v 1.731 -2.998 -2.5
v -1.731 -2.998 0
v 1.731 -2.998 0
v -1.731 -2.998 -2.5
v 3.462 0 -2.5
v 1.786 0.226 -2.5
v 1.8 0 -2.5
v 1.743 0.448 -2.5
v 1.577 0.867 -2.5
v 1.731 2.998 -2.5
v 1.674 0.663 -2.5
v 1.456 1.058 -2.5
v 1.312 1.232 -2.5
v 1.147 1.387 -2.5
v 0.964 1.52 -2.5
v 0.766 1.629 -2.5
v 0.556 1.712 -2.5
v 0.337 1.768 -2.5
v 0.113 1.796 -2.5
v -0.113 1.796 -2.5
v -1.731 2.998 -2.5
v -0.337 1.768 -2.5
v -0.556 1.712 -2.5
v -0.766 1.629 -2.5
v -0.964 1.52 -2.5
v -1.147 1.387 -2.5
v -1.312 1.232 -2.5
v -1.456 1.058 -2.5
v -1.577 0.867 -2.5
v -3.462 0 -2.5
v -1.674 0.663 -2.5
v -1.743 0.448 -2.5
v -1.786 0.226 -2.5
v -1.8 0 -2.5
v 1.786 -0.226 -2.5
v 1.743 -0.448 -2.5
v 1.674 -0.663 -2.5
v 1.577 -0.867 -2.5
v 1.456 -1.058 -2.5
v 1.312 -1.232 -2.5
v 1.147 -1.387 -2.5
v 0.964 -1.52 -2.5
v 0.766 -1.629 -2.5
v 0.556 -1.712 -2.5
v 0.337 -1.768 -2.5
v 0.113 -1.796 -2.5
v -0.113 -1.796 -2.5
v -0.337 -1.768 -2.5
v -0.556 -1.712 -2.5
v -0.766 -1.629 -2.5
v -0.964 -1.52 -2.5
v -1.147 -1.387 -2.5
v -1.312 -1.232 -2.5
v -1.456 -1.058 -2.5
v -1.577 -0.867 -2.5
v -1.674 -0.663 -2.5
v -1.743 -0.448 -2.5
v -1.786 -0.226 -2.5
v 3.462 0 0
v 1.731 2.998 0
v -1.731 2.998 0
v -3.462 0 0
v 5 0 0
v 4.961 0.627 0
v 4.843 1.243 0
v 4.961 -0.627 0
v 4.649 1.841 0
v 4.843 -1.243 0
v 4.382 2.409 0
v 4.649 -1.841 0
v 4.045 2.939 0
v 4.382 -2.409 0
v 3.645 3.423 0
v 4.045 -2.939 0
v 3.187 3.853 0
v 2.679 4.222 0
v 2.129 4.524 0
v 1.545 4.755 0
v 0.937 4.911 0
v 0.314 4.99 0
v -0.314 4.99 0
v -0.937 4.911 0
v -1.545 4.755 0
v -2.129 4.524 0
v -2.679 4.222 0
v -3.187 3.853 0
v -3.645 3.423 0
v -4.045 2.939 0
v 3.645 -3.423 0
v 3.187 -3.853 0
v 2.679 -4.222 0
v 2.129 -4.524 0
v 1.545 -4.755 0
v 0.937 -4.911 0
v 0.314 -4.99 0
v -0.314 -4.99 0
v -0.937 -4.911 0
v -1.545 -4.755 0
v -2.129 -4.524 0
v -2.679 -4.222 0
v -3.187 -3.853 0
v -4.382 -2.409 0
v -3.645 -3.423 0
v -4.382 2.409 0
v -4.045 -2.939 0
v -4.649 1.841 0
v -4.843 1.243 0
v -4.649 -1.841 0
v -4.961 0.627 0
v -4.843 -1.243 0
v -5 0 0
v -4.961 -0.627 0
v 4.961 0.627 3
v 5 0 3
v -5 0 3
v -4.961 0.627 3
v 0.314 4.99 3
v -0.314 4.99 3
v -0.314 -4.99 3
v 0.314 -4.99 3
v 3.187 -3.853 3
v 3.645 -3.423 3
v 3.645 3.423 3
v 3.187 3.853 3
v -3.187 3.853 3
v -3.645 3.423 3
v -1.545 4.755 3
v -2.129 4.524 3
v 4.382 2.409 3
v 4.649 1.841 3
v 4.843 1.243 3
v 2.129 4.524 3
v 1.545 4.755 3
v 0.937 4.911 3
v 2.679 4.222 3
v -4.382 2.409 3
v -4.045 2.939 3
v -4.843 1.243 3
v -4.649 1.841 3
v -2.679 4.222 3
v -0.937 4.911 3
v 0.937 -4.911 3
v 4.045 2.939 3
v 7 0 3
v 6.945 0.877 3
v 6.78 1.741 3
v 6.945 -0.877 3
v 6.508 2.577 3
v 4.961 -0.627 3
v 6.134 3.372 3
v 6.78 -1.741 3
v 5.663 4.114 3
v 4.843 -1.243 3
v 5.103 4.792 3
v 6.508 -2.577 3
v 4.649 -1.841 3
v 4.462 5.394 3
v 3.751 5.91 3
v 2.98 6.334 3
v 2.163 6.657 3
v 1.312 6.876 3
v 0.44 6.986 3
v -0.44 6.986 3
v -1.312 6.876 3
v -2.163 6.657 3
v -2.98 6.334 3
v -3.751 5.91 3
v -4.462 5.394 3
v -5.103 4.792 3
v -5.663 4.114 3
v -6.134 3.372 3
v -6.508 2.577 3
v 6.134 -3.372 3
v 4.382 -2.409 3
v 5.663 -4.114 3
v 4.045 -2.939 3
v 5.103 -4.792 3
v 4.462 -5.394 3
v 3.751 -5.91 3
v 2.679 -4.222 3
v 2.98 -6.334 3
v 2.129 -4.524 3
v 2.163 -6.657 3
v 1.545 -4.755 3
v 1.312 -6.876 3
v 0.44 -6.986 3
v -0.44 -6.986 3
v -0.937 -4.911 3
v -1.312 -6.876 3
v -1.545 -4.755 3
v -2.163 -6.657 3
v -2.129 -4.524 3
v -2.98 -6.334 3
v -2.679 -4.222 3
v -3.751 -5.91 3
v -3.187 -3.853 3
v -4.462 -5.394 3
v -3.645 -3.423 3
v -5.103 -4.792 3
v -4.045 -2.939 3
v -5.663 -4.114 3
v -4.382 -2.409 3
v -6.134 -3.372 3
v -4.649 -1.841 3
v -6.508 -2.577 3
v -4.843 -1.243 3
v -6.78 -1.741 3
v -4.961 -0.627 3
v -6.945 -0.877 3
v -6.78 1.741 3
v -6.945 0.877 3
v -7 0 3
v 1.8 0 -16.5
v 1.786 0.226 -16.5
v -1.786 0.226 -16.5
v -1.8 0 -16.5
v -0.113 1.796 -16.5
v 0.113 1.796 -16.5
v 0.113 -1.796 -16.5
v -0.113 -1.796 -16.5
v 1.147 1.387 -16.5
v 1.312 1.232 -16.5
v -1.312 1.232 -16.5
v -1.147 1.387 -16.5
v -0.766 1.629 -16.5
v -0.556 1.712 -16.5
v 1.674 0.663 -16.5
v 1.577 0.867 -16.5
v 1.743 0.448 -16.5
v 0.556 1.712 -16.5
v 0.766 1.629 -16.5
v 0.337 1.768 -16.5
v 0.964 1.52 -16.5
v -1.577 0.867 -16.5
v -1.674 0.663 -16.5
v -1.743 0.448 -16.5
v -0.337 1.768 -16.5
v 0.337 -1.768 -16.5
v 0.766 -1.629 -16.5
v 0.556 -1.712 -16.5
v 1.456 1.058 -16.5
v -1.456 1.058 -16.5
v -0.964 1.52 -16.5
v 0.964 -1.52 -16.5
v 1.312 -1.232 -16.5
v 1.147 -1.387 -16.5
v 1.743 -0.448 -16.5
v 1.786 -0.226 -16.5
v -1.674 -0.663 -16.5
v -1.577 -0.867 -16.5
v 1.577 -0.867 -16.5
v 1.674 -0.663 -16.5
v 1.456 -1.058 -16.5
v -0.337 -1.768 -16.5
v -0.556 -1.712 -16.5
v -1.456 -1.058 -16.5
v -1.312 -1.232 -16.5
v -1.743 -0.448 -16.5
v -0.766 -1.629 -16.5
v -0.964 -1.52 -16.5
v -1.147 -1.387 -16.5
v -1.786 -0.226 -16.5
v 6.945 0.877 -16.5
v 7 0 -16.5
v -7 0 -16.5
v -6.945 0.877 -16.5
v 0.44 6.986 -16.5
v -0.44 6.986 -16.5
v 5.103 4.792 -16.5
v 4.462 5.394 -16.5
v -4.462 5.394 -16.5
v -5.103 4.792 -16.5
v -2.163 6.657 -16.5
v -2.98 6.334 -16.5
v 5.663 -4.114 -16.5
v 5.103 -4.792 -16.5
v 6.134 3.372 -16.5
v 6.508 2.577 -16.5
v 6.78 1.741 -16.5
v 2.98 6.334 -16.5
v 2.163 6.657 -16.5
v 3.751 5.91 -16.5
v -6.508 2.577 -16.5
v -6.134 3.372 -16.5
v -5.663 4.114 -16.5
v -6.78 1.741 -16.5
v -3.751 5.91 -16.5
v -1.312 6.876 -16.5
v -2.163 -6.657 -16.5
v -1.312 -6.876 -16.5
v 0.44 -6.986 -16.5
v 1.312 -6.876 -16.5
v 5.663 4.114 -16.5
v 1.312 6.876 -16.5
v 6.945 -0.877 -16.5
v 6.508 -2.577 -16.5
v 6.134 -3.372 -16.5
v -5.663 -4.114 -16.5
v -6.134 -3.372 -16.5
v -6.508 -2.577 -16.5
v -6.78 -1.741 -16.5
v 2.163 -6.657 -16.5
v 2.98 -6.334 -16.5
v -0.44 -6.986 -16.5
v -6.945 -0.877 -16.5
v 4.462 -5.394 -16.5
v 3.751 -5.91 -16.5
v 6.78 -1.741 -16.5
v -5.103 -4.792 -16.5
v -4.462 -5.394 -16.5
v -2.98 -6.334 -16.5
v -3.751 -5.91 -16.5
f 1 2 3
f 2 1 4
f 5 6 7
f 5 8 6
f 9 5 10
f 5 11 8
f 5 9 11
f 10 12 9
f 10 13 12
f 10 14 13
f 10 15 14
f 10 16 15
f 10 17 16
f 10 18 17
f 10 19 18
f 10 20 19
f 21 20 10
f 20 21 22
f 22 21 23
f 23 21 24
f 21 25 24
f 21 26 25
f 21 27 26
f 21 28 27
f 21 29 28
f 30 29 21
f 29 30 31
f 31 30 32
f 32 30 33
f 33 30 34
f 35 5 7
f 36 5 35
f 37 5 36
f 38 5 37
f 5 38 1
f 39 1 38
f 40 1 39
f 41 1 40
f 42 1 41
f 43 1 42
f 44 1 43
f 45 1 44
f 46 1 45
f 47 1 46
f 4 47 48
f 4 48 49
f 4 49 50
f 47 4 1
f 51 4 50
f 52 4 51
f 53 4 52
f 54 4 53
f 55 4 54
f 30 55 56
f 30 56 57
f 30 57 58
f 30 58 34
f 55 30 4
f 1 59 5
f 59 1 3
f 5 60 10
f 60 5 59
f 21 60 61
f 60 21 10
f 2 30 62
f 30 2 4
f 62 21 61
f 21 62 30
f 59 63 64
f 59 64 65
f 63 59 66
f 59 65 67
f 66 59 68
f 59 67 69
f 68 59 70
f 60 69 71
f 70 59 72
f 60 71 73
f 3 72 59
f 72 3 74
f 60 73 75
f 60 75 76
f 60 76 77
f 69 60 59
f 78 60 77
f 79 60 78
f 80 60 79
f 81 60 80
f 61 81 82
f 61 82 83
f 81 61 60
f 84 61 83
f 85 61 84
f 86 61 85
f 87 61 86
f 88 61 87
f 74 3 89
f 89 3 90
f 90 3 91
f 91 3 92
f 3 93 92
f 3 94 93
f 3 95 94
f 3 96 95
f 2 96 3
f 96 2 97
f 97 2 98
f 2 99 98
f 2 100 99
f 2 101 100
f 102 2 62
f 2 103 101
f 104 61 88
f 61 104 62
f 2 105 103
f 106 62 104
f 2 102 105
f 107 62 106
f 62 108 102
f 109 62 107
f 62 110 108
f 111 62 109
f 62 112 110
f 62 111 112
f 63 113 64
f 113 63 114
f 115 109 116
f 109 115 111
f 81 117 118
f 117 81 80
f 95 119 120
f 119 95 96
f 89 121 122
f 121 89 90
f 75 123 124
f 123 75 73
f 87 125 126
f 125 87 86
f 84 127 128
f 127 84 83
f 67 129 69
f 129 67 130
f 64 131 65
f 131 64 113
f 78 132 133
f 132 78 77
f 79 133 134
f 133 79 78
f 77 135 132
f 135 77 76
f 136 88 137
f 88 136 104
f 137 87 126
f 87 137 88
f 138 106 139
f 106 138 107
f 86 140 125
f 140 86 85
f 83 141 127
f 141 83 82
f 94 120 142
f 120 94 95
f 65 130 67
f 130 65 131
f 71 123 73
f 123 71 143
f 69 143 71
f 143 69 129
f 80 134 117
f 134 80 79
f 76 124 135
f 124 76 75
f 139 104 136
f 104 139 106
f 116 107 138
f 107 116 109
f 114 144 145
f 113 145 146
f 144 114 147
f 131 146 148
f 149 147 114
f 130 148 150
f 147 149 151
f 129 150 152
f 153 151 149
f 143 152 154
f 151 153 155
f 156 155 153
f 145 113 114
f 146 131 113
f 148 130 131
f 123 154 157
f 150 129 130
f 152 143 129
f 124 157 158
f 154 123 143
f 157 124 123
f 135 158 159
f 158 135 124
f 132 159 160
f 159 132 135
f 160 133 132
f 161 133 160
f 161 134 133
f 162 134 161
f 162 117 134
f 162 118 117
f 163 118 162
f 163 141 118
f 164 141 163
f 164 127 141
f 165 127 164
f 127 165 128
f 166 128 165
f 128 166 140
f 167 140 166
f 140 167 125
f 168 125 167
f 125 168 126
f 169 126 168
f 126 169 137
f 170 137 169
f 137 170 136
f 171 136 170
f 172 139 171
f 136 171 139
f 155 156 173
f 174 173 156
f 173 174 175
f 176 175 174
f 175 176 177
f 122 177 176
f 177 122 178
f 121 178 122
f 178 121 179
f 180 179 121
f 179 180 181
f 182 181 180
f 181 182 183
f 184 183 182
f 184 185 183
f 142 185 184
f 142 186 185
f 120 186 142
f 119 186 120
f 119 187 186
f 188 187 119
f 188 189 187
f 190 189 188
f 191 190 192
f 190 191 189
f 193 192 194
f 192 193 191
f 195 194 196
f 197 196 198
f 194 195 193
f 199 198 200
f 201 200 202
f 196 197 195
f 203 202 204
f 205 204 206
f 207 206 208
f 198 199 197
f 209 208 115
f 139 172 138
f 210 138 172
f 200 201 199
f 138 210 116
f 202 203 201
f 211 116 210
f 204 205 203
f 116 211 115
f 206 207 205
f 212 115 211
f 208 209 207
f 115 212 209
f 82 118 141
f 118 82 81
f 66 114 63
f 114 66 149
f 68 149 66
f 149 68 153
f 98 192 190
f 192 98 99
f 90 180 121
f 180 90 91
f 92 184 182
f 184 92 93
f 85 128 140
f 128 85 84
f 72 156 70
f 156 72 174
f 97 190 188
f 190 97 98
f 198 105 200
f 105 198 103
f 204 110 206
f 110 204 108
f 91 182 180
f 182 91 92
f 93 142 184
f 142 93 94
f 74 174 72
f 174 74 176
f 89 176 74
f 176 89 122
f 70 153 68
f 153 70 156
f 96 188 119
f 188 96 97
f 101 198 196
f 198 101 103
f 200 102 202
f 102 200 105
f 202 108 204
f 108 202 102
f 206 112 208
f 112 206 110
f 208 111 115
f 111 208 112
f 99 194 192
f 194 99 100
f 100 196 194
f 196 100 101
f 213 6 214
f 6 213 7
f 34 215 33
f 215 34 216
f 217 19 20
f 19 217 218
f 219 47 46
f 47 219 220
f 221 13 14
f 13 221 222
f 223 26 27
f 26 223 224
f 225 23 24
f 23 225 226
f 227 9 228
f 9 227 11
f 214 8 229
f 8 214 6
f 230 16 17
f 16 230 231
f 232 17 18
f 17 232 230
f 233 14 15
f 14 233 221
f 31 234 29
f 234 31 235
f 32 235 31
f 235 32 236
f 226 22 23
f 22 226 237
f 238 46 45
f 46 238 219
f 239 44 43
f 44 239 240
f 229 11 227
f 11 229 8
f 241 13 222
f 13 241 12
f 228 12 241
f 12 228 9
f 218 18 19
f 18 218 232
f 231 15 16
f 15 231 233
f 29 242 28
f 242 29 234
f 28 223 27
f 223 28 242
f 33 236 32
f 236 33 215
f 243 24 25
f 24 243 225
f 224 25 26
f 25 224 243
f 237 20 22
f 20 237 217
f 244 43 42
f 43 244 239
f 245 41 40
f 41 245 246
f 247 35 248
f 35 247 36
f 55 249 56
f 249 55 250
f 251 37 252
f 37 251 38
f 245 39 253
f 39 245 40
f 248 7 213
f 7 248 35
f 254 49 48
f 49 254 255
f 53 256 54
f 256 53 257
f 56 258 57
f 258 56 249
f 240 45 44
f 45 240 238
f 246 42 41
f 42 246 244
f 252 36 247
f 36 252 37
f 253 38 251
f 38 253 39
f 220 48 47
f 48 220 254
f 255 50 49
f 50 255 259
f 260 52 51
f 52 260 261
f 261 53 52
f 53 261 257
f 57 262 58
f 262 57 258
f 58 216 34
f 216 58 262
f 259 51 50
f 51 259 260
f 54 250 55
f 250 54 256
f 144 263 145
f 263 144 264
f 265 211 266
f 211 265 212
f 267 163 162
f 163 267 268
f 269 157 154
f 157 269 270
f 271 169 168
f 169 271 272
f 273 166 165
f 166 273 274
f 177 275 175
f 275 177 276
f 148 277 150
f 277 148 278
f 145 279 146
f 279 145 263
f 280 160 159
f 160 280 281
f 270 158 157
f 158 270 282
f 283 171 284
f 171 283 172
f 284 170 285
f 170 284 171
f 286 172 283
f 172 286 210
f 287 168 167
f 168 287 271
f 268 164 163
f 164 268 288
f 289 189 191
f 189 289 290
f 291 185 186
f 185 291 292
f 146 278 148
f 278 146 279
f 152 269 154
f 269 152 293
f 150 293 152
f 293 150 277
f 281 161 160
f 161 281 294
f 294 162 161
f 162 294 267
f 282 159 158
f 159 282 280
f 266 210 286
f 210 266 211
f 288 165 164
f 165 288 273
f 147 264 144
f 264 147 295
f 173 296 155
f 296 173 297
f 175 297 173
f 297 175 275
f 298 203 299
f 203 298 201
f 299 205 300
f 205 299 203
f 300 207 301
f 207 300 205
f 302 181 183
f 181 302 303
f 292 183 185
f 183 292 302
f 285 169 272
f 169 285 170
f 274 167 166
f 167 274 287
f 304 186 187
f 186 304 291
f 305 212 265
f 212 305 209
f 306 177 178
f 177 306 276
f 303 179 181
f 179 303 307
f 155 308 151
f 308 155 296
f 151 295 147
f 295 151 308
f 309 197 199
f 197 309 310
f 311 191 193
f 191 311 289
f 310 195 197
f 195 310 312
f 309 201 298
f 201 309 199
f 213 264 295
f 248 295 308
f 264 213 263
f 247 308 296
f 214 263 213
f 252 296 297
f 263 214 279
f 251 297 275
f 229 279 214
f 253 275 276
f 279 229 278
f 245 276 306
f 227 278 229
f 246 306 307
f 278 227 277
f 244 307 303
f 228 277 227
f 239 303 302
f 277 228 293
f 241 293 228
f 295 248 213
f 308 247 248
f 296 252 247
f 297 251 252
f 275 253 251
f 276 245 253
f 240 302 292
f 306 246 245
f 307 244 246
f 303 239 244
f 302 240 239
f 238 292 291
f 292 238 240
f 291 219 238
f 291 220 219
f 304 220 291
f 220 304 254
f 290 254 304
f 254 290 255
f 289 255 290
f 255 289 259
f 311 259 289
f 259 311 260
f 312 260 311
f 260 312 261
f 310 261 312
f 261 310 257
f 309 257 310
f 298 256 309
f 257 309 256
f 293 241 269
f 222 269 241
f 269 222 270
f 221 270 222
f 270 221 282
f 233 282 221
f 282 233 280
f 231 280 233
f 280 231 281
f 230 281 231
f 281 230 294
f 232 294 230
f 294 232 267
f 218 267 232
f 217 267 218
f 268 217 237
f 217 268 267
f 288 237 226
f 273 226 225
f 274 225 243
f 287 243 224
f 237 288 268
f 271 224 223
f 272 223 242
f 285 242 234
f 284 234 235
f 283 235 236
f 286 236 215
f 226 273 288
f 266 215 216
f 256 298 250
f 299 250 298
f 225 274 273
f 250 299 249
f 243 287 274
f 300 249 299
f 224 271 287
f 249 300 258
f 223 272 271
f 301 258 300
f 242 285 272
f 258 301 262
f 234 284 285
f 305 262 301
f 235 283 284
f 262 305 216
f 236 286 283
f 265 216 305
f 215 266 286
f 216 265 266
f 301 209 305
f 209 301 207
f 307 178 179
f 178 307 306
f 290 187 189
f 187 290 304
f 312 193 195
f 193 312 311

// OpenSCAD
$fn = 50;


difference() {
	union() {
		translate(v = [0, 0, -16.5000000000]) {
			cylinder(h = 19.5000000000, r = 7.0000000000);
		}
	}
	union() {
		translate(v = [0, 0, 0]) {
			rotate(a = [0, 0, 0]) {
				difference() {
					union() {
						translate(v = [0, 0, -2.5000000000]) {
							linear_extrude(height = 2.5000000000) {
								polygon(points = [[3.4620000000, 0.0000000000], [1.7310000000, 2.9981799479], [-1.7310000000, 2.9981799479], [-3.4620000000, 0.0000000000], [-1.7310000000, -2.9981799479], [1.7310000000, -2.9981799479]]);
							}
						}
					}
					union();
				}
			}
		}
		#cylinder(h = 3, r = 5.0000000000);
		#translate(v = [0, 0, -100.0000000000]) {
			cylinder(h = 200, r = 1.8000000000);
		}
	}
}
